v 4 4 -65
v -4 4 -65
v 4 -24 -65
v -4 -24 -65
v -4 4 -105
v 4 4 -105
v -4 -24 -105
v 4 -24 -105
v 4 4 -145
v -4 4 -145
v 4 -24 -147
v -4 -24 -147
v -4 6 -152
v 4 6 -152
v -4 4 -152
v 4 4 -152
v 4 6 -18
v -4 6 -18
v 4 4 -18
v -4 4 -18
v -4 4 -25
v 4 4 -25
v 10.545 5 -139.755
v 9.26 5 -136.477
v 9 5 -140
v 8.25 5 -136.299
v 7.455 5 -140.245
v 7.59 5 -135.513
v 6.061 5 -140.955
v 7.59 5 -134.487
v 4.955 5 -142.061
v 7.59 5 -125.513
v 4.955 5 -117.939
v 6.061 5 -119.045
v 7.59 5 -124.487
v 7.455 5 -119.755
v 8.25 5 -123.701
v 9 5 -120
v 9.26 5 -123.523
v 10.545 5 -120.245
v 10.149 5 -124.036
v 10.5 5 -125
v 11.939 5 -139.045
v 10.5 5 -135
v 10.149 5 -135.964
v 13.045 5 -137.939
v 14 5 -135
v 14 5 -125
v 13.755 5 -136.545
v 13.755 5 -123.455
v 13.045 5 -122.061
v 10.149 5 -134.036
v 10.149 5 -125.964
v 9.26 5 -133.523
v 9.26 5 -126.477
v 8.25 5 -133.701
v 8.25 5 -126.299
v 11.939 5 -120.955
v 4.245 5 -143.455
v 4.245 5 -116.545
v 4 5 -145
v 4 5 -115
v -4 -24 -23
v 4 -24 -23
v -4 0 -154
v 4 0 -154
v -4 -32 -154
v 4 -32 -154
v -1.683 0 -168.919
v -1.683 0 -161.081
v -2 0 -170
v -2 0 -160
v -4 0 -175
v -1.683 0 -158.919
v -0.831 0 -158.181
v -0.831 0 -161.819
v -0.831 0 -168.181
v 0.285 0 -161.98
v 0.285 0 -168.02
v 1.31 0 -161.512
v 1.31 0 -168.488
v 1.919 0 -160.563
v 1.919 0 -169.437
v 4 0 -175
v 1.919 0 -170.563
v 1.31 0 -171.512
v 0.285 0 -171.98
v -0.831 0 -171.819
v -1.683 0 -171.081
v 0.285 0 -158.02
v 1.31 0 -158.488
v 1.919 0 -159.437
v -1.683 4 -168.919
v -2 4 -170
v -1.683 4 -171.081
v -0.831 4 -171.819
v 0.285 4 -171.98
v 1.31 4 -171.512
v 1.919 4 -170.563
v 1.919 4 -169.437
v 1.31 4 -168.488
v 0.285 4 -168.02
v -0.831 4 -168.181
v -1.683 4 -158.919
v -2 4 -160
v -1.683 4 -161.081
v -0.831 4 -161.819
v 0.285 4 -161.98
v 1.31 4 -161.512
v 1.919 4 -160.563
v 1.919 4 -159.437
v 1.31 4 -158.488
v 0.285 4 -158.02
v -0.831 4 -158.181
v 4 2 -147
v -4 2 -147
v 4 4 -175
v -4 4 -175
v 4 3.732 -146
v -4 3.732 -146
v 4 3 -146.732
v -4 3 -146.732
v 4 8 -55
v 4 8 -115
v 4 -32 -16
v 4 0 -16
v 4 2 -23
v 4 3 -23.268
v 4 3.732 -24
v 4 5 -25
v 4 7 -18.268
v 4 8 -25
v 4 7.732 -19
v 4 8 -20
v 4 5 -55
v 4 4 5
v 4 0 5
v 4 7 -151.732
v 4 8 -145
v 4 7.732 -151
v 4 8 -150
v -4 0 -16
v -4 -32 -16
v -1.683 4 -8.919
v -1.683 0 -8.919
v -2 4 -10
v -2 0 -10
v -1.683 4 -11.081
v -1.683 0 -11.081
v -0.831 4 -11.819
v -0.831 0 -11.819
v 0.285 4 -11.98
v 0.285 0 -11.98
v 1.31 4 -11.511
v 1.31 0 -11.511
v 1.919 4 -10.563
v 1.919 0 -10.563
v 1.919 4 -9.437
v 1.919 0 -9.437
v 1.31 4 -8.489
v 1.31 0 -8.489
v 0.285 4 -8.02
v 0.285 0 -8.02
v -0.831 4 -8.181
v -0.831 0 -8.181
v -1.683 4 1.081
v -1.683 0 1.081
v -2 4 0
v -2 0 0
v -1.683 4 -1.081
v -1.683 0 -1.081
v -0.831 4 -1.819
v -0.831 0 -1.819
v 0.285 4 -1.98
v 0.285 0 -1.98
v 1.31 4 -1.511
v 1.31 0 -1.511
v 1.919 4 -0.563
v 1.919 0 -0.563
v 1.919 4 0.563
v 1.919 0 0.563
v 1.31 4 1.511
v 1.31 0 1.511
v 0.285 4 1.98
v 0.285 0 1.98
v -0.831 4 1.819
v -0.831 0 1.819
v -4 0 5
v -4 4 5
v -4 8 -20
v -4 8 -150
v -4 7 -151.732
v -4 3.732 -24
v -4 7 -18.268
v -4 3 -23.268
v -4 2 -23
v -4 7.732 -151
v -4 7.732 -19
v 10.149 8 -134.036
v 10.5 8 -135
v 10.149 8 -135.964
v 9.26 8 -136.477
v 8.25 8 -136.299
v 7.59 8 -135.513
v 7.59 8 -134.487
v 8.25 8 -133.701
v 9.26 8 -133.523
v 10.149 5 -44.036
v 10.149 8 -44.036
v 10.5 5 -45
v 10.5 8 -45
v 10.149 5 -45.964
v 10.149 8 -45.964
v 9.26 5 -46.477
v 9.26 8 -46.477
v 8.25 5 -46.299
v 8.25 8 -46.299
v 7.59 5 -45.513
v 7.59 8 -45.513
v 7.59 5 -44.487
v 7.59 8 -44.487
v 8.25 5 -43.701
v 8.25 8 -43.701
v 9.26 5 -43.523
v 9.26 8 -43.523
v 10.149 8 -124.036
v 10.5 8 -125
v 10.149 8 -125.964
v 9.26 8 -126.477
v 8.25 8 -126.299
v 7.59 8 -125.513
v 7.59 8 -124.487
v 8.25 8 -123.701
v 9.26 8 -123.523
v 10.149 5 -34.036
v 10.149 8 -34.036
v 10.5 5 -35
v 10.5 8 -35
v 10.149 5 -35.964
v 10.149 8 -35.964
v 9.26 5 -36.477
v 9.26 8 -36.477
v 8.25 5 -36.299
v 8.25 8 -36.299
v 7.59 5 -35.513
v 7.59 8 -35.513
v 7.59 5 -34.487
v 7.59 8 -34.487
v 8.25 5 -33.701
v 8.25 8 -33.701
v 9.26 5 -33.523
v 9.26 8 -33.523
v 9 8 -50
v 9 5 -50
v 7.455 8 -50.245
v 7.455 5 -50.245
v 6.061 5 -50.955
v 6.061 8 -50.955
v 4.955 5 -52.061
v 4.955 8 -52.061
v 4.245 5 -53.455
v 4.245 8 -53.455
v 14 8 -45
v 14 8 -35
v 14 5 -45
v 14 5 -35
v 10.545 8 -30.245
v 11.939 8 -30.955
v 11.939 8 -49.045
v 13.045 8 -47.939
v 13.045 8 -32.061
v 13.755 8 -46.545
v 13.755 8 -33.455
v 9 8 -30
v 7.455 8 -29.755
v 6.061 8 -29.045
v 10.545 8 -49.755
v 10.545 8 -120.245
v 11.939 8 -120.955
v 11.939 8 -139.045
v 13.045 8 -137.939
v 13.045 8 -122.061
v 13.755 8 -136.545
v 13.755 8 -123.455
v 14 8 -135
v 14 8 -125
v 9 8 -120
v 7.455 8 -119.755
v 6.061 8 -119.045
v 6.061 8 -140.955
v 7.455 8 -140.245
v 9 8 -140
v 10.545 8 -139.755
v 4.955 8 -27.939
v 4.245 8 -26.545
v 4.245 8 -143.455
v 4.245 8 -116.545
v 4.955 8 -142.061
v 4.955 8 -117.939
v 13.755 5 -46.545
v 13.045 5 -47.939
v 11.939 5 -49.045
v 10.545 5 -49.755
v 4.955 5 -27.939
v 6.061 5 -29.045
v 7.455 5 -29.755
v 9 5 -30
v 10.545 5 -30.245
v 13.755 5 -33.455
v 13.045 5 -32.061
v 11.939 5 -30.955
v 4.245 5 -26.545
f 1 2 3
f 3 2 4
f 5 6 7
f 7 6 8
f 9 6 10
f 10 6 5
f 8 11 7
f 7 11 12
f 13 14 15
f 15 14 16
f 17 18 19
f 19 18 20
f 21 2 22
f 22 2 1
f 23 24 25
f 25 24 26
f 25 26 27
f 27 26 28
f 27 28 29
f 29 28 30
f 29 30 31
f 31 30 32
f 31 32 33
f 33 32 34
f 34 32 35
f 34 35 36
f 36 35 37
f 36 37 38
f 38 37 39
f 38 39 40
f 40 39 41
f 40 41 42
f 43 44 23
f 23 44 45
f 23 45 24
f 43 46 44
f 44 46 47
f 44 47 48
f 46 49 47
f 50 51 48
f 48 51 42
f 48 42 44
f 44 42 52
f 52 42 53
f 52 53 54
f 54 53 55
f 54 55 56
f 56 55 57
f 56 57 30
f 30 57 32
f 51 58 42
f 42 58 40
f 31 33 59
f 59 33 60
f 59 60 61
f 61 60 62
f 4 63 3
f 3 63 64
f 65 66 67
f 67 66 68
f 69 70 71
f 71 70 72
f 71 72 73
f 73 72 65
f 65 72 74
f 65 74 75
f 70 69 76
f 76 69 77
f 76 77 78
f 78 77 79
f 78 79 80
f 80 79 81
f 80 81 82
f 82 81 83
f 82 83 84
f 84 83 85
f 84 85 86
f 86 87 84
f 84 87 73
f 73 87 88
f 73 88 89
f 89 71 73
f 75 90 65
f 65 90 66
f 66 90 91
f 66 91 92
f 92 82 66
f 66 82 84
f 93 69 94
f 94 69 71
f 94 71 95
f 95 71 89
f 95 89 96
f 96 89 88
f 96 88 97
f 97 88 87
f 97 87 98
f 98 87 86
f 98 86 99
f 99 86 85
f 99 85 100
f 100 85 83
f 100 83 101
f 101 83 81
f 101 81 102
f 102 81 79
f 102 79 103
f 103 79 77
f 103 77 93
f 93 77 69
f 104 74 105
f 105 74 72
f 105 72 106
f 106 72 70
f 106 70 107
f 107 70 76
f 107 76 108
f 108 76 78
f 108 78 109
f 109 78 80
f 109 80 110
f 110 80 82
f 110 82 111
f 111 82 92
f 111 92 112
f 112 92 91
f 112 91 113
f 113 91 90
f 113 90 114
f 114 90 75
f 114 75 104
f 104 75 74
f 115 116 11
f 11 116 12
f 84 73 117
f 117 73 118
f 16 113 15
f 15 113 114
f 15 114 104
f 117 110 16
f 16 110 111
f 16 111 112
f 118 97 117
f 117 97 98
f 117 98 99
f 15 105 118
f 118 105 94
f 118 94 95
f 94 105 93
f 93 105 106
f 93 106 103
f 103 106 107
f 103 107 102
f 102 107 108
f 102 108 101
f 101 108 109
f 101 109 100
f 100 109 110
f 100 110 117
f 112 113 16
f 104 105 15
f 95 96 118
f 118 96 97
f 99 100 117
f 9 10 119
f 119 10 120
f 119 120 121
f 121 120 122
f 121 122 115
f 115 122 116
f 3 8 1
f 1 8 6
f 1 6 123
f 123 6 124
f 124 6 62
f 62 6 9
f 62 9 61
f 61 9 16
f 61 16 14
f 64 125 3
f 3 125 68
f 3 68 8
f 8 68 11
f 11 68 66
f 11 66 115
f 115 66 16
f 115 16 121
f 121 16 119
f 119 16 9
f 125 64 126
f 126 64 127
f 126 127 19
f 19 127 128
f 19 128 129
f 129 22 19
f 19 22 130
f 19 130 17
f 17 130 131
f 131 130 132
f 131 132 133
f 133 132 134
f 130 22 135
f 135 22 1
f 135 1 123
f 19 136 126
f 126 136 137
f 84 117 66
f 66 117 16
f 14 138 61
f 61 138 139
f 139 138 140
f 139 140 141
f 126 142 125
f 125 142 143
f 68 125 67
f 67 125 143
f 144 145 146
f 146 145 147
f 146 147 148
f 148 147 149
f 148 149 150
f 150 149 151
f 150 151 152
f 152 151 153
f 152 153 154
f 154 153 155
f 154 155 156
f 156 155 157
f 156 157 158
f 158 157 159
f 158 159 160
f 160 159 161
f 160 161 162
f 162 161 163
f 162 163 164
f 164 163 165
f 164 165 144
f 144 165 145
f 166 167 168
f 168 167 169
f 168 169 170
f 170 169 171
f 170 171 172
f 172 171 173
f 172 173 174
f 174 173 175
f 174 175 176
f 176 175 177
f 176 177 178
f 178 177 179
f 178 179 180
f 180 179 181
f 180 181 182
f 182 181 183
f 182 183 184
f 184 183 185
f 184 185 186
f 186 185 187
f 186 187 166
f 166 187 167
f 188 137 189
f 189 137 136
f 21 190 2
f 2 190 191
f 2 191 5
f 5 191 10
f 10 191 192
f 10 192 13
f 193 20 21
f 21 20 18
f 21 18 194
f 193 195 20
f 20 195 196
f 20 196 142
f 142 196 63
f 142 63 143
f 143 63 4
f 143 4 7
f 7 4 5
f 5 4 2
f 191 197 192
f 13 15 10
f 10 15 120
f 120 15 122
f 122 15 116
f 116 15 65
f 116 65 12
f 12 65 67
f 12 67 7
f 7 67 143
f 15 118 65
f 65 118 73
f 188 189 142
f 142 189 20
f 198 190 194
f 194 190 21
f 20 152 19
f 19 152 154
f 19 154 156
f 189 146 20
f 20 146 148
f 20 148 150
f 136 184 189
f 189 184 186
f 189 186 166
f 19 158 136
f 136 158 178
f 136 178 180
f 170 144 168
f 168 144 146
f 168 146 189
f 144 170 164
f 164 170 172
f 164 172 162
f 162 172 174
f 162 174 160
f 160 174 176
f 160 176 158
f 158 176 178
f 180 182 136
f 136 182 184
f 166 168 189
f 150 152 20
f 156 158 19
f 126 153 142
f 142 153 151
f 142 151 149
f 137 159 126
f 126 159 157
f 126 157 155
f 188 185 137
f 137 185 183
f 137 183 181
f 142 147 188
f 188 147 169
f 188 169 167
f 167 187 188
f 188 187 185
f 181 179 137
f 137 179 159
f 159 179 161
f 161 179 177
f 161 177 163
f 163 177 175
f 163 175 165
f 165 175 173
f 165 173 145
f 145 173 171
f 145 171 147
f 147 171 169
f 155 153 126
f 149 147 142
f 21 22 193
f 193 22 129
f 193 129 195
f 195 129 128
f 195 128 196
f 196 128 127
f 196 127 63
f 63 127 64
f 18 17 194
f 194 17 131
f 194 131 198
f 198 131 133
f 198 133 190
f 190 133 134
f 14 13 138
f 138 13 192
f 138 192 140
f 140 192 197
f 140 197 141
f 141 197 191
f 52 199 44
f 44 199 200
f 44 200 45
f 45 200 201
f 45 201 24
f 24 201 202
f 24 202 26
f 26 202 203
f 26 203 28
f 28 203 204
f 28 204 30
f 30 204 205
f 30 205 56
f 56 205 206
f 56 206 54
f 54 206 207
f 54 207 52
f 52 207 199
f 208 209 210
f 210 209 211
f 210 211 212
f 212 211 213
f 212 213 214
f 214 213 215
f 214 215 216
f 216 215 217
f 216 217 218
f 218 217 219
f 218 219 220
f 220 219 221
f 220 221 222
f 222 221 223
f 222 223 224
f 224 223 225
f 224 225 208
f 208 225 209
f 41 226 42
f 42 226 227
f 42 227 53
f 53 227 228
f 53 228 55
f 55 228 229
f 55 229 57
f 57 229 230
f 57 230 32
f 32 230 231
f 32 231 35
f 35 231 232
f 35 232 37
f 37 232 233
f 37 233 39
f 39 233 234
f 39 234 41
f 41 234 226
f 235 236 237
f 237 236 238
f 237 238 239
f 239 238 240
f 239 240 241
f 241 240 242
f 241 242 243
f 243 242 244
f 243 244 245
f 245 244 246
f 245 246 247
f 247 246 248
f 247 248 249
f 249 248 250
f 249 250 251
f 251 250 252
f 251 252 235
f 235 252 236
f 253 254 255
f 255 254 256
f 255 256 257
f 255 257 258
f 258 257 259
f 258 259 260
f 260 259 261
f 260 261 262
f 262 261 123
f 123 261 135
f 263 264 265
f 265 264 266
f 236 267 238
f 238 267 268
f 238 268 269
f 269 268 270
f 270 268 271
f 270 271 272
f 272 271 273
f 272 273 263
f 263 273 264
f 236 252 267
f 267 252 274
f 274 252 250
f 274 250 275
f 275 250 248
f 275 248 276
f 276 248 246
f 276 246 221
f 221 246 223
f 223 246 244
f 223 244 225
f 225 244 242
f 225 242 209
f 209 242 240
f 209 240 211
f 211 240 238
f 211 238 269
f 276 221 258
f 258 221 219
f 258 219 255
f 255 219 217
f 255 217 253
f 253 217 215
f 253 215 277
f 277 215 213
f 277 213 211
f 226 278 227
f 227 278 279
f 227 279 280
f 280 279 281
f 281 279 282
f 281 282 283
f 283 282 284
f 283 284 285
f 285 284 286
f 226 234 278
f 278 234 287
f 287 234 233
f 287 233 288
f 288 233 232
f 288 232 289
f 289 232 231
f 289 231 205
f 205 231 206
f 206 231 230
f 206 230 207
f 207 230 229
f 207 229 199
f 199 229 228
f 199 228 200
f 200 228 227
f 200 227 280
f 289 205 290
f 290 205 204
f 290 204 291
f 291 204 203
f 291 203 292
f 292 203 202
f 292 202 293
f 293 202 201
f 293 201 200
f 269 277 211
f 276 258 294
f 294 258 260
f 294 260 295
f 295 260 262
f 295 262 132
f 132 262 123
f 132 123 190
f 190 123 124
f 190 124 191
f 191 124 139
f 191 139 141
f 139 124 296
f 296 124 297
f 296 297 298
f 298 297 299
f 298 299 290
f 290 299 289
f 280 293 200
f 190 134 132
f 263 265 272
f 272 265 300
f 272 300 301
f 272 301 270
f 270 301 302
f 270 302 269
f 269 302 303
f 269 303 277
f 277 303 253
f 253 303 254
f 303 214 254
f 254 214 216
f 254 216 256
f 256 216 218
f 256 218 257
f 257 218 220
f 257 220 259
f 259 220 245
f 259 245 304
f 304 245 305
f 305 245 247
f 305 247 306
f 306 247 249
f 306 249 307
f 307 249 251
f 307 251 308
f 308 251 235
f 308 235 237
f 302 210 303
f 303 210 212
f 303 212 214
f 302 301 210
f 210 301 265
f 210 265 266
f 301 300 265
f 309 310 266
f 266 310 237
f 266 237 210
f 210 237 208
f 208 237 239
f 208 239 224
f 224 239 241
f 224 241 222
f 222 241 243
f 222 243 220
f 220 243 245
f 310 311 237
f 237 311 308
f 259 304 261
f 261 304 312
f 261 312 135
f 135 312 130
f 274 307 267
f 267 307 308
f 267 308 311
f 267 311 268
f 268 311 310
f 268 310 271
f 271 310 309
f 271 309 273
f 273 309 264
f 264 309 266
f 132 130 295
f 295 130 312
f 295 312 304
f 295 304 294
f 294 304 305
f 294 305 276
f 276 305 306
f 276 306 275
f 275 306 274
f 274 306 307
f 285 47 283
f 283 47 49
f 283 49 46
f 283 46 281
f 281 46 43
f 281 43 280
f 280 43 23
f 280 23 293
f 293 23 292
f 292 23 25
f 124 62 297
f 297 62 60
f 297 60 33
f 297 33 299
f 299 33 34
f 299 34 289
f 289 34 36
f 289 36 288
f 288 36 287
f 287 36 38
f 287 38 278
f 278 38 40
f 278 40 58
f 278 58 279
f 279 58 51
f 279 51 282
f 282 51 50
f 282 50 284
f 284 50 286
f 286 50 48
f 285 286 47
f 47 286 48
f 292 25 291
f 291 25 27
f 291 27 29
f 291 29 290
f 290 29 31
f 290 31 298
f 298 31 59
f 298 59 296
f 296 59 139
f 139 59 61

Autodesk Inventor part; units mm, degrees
ref_plane "YZ Plane" through (0, 0, 0) normal (1, 0, 0) x (0, 1, 0)
ref_plane "XZ Plane" through (0, 0, 0) normal (0, 1, 0) x (-1, 0, 0)
ref_plane "XY Plane" through (0, 0, 0) normal (0, 0, 1) x (1, 0, 0)
sketch "Sketch1" plane through (0, 0, 0) normal (0, 1, 0) x (-1, 0, 0)
  circle A0 centre (0, 0) radius 2
  line L0 (0, 0) -> (0, -10)
  circle A1 centre (0, -10) radius 2
  line L1 (0, 0) -> (4, 0)
  line L2 (4, 0) -> (4, 5)
  line L3 (4, 5) -> (0, 5)
  line L4 (0, 5) -> (0, 0)
  line L5 (0, -10) -> (-4, -10)
  line L6 (-4, -10) -> (-4, -15)
  line L7 (-4, -15) -> (0, -15)
  line L8 (0, -15) -> (0, -10)
  line L9 (4, 5) -> (-4, 5)
  line L10 (-4, 5) -> (-4, -15)
  line L11 (-4, -15) -> (4, -15)
  line L12 (4, -15) -> (4, 5)
  line L13 (4, -15) -> (-4, -15)
  line L14 (-4, -15) -> (-4, -23)
  line L15 (-4, -23) -> (4, -23)
  line L16 (4, -23) -> (4, -15)
  line L17 (0, -10) -> (0, -85)
  line L18 (0, -85) -> (10, -85)
  circle A2 centre (0, -170) radius 2
  line L19 (0, -170) -> (0, -160)
  circle A3 centre (0, -160) radius 2
  line L20 (0, -170) -> (4, -170)
  line L21 (4, -170) -> (4, -175)
  line L22 (4, -175) -> (0, -175)
  line L23 (0, -175) -> (0, -170)
  line L24 (0, -160) -> (-4, -160)
  line L25 (-4, -160) -> (-4, -155)
  line L26 (-4, -155) -> (0, -155)
  line L27 (0, -155) -> (0, -160)
  line L28 (4, -175) -> (-4, -175)
  line L29 (-4, -175) -> (-4, -155)
  line L30 (-4, -155) -> (4, -155)
  line L31 (4, -155) -> (4, -175)
  line L32 (4, -155) -> (-4, -155)
  line L33 (-4, -155) -> (-4, -147)
  line L34 (-4, -147) -> (4, -147)
  line L35 (4, -147) -> (4, -155)
  dimension "d0" = 4
  dimension "d1" = 10
  dimension "d2" = 4
  dimension "d3" = 4
  dimension "d4" = 5
  dimension "d5" = 4
  dimension "d6" = 5
  dimension "d7" = 8
  dimension "d8" = 75
  dimension "d9" = 10
extrude "Extrusion1" add sketch "Sketch1" along normal blind 4 contours L1 L12 L11 L8 A1 L0 A0 | A0 L4 L3 L2 L1 | A0 L0 A1 L5 L10 L9 L4 | L16 L15 L17 L11 | A1 L8 L7 L6 L5 | L17 L15 L14 L7 | L20 L21 L22 L23 A2 | A2 L19 A3 L27 L30 L31 L20 | A2 L23 L28 L29 L24 A3 L19 | L30 L26 L33 L34 L35 | L24 L25 L26 L27 A3
sketch "Sketch2" plane through (0, 0, 0) normal (0, -1, 0) x (1, 0, 0)
  line L0 (4, -23) -> (-4, -23) projected
  line L1 (4, 5) -> (4, -23) projected
  line L2 (-4, -23) -> (4, -23)
  line L3 (4, -23) -> (4, -16)
  line L4 (4, -16) -> (-4, -16)
  line L5 (-4, -16) -> (-4, -23)
  line L6 (-4, -147) -> (4, -147) projected
  line L7 (-4, -147) -> (4, -147)
  line L8 (4, -147) -> (4, -154)
  line L9 (4, -154) -> (-4, -154)
  line L10 (-4, -154) -> (-4, -147)
  point P0 (0, 0)
  dimension "d12" = 7
  dimension "d13" = 7
extrude "Extrusion2" add sketch "Sketch2" along normal blind 32
sketch "Sketch3" plane through (0, -32, 0) normal (0, -1, 0) x (1, 0, 0)
  line L0 (4, -154) -> (4, -147) projected
  line L1 (-4, -16) -> (-4, -23) projected
  line L2 (4, -154) -> (-4, -154)
  line L3 (-4, -154) -> (-4, -16)
  line L4 (-4, -16) -> (4, -16)
  line L5 (4, -16) -> (4, -154)
  point P0 (0, 0)
extrude "Extrusion3" add sketch "Sketch3" against normal blind 8
sketch "Sketch4" plane through (0, 4, 0) normal (0, 1, 0) x (1, 0, 0)
  line L0 (4, 23) -> (4, 147) projected
  line L1 (4, 147) -> (-4, 147)
  line L2 (-4, 147) -> (-4, 152)
  line L3 (-4, 152) -> (4, 152)
  line L4 (4, 152) -> (4, 147)
  line L5 (4, 23) -> (-4, 23) projected
  line L6 (4, 23) -> (-4, 23)
  line L7 (-4, 23) -> (-4, 18)
  line L8 (-4, 18) -> (4, 18)
  line L9 (4, 18) -> (4, 23)
  line L10 (-4, 18) -> (4, 18)
  line L11 (4, 18) -> (4, 152)
  line L12 (4, 152) -> (-4, 152)
  line L13 (-4, 152) -> (-4, 18)
  point P0 (0, 0)
  point P1 (-4, 23)
  dimension "d18" = 8
  dimension "d19" = 5
  dimension "d20" = 8
  dimension "d21" = 5
extrude "Extrusion4" add sketch "Sketch4" along normal blind 4
sketch "Sketch5" plane through (0, -24, 0) normal (0, 1, 0) x (1, 0, 0)
  line L0 (4, 23) -> (-4, 23) projected
  line L1 (4, 23) -> (4, 147) projected
  line L2 (4, 23) -> (4, 147)
  line L3 (4, 85) -> (0, 85)
  line L4 (-4, 65) -> (4, 65)
  line L5 (4, 65) -> (4, 105)
  line L6 (4, 105) -> (-4, 105)
  line L7 (-4, 105) -> (-4, 65)
  line L8 (-4, 65) -> (4, 105) construction
  line L9 (4, 65) -> (-4, 105) construction
  point P0 (0, 0)
  point P1 (4, 65)
  point P2 (4, 105)
  dimension "d24" = 40
extrude "Extrusion5" add sketch "Sketch5" along normal up to surface (28 mm away)
fillet "Fillet1" radius 2 4 edges at (0, 4, -23) (0, 8, -18) (0, 8, -152) (0, 4, -147)
sketch "Sketch6" plane through (4, 0, 5) normal (1, 0, 0) x (0, 0, -1)
  point P0 (5, 0)
sketch "Sketch7" plane through (0, 8, 0) normal (0, 1, 0) x (1, 0, 0)
  line L0 (-4, 150) -> (4, 150) projected
  line L1 (4, 150) -> (4, 130)
  line L2 (4, 154) -> (4, 16) projected
  line L3 (4, 20) -> (-4, 20) projected
  line L4 (4, 20) -> (4, 40)
  line L5 (4, 130) -> (14, 130)
  line L6 (14, 130) -> (14, 120)
  line L7 (14, 120) -> (4, 120)
  line L8 (4, 120) -> (4, 130)
  line L9 (14, 130) -> (4, 130)
  line L10 (4, 130) -> (4, 140)
  line L11 (4, 140) -> (14, 140)
  line L12 (14, 140) -> (14, 130)
  line L13 (4, 40) -> (14, 40)
  line L14 (14, 40) -> (14, 50)
  line L15 (14, 50) -> (4, 50)
  line L16 (4, 50) -> (4, 40)
  line L17 (4, 40) -> (14, 40)
  line L18 (14, 40) -> (14, 30)
  line L19 (14, 30) -> (4, 30)
  line L20 (4, 30) -> (4, 40)
  line L21 (9, 40) -> (9, 45)
  line L22 (9, 40) -> (9, 35)
  circle A0 centre (9, 45) radius 1.5
  circle A1 centre (9, 35) radius 1.5
  line L23 (9, 130) -> (9, 135)
  line L24 (9, 130) -> (9, 125)
  circle A2 centre (9, 135) radius 1.5
  circle A3 centre (9, 125) radius 1.5
  point P0 (0, 0)
  dimension "d28" = 20
  dimension "d29" = 20
  dimension "d30" = 10
  dimension "d31" = 10
  dimension "d32" = 10
  dimension "d33" = 10
  dimension "d34" = 10
  dimension "d35" = 3
  dimension "d36" = 3
  dimension "d37" = 5
  dimension "d38" = 3
  dimension "d39" = 3
extrude "Extrusion6" add sketch "Sketch7" against normal blind 3
fillet "Fillet2" radius 5 8 edges at (4, 6.5, -120) (14, 6.5, -120) (4, 6.5, -140) (14, 6.5, -140) (4, 6.5, -30) (14, 6.5, -30) (14, 6.5, -50) (4, 6.5, -50)
properties part number "side_wall2"
